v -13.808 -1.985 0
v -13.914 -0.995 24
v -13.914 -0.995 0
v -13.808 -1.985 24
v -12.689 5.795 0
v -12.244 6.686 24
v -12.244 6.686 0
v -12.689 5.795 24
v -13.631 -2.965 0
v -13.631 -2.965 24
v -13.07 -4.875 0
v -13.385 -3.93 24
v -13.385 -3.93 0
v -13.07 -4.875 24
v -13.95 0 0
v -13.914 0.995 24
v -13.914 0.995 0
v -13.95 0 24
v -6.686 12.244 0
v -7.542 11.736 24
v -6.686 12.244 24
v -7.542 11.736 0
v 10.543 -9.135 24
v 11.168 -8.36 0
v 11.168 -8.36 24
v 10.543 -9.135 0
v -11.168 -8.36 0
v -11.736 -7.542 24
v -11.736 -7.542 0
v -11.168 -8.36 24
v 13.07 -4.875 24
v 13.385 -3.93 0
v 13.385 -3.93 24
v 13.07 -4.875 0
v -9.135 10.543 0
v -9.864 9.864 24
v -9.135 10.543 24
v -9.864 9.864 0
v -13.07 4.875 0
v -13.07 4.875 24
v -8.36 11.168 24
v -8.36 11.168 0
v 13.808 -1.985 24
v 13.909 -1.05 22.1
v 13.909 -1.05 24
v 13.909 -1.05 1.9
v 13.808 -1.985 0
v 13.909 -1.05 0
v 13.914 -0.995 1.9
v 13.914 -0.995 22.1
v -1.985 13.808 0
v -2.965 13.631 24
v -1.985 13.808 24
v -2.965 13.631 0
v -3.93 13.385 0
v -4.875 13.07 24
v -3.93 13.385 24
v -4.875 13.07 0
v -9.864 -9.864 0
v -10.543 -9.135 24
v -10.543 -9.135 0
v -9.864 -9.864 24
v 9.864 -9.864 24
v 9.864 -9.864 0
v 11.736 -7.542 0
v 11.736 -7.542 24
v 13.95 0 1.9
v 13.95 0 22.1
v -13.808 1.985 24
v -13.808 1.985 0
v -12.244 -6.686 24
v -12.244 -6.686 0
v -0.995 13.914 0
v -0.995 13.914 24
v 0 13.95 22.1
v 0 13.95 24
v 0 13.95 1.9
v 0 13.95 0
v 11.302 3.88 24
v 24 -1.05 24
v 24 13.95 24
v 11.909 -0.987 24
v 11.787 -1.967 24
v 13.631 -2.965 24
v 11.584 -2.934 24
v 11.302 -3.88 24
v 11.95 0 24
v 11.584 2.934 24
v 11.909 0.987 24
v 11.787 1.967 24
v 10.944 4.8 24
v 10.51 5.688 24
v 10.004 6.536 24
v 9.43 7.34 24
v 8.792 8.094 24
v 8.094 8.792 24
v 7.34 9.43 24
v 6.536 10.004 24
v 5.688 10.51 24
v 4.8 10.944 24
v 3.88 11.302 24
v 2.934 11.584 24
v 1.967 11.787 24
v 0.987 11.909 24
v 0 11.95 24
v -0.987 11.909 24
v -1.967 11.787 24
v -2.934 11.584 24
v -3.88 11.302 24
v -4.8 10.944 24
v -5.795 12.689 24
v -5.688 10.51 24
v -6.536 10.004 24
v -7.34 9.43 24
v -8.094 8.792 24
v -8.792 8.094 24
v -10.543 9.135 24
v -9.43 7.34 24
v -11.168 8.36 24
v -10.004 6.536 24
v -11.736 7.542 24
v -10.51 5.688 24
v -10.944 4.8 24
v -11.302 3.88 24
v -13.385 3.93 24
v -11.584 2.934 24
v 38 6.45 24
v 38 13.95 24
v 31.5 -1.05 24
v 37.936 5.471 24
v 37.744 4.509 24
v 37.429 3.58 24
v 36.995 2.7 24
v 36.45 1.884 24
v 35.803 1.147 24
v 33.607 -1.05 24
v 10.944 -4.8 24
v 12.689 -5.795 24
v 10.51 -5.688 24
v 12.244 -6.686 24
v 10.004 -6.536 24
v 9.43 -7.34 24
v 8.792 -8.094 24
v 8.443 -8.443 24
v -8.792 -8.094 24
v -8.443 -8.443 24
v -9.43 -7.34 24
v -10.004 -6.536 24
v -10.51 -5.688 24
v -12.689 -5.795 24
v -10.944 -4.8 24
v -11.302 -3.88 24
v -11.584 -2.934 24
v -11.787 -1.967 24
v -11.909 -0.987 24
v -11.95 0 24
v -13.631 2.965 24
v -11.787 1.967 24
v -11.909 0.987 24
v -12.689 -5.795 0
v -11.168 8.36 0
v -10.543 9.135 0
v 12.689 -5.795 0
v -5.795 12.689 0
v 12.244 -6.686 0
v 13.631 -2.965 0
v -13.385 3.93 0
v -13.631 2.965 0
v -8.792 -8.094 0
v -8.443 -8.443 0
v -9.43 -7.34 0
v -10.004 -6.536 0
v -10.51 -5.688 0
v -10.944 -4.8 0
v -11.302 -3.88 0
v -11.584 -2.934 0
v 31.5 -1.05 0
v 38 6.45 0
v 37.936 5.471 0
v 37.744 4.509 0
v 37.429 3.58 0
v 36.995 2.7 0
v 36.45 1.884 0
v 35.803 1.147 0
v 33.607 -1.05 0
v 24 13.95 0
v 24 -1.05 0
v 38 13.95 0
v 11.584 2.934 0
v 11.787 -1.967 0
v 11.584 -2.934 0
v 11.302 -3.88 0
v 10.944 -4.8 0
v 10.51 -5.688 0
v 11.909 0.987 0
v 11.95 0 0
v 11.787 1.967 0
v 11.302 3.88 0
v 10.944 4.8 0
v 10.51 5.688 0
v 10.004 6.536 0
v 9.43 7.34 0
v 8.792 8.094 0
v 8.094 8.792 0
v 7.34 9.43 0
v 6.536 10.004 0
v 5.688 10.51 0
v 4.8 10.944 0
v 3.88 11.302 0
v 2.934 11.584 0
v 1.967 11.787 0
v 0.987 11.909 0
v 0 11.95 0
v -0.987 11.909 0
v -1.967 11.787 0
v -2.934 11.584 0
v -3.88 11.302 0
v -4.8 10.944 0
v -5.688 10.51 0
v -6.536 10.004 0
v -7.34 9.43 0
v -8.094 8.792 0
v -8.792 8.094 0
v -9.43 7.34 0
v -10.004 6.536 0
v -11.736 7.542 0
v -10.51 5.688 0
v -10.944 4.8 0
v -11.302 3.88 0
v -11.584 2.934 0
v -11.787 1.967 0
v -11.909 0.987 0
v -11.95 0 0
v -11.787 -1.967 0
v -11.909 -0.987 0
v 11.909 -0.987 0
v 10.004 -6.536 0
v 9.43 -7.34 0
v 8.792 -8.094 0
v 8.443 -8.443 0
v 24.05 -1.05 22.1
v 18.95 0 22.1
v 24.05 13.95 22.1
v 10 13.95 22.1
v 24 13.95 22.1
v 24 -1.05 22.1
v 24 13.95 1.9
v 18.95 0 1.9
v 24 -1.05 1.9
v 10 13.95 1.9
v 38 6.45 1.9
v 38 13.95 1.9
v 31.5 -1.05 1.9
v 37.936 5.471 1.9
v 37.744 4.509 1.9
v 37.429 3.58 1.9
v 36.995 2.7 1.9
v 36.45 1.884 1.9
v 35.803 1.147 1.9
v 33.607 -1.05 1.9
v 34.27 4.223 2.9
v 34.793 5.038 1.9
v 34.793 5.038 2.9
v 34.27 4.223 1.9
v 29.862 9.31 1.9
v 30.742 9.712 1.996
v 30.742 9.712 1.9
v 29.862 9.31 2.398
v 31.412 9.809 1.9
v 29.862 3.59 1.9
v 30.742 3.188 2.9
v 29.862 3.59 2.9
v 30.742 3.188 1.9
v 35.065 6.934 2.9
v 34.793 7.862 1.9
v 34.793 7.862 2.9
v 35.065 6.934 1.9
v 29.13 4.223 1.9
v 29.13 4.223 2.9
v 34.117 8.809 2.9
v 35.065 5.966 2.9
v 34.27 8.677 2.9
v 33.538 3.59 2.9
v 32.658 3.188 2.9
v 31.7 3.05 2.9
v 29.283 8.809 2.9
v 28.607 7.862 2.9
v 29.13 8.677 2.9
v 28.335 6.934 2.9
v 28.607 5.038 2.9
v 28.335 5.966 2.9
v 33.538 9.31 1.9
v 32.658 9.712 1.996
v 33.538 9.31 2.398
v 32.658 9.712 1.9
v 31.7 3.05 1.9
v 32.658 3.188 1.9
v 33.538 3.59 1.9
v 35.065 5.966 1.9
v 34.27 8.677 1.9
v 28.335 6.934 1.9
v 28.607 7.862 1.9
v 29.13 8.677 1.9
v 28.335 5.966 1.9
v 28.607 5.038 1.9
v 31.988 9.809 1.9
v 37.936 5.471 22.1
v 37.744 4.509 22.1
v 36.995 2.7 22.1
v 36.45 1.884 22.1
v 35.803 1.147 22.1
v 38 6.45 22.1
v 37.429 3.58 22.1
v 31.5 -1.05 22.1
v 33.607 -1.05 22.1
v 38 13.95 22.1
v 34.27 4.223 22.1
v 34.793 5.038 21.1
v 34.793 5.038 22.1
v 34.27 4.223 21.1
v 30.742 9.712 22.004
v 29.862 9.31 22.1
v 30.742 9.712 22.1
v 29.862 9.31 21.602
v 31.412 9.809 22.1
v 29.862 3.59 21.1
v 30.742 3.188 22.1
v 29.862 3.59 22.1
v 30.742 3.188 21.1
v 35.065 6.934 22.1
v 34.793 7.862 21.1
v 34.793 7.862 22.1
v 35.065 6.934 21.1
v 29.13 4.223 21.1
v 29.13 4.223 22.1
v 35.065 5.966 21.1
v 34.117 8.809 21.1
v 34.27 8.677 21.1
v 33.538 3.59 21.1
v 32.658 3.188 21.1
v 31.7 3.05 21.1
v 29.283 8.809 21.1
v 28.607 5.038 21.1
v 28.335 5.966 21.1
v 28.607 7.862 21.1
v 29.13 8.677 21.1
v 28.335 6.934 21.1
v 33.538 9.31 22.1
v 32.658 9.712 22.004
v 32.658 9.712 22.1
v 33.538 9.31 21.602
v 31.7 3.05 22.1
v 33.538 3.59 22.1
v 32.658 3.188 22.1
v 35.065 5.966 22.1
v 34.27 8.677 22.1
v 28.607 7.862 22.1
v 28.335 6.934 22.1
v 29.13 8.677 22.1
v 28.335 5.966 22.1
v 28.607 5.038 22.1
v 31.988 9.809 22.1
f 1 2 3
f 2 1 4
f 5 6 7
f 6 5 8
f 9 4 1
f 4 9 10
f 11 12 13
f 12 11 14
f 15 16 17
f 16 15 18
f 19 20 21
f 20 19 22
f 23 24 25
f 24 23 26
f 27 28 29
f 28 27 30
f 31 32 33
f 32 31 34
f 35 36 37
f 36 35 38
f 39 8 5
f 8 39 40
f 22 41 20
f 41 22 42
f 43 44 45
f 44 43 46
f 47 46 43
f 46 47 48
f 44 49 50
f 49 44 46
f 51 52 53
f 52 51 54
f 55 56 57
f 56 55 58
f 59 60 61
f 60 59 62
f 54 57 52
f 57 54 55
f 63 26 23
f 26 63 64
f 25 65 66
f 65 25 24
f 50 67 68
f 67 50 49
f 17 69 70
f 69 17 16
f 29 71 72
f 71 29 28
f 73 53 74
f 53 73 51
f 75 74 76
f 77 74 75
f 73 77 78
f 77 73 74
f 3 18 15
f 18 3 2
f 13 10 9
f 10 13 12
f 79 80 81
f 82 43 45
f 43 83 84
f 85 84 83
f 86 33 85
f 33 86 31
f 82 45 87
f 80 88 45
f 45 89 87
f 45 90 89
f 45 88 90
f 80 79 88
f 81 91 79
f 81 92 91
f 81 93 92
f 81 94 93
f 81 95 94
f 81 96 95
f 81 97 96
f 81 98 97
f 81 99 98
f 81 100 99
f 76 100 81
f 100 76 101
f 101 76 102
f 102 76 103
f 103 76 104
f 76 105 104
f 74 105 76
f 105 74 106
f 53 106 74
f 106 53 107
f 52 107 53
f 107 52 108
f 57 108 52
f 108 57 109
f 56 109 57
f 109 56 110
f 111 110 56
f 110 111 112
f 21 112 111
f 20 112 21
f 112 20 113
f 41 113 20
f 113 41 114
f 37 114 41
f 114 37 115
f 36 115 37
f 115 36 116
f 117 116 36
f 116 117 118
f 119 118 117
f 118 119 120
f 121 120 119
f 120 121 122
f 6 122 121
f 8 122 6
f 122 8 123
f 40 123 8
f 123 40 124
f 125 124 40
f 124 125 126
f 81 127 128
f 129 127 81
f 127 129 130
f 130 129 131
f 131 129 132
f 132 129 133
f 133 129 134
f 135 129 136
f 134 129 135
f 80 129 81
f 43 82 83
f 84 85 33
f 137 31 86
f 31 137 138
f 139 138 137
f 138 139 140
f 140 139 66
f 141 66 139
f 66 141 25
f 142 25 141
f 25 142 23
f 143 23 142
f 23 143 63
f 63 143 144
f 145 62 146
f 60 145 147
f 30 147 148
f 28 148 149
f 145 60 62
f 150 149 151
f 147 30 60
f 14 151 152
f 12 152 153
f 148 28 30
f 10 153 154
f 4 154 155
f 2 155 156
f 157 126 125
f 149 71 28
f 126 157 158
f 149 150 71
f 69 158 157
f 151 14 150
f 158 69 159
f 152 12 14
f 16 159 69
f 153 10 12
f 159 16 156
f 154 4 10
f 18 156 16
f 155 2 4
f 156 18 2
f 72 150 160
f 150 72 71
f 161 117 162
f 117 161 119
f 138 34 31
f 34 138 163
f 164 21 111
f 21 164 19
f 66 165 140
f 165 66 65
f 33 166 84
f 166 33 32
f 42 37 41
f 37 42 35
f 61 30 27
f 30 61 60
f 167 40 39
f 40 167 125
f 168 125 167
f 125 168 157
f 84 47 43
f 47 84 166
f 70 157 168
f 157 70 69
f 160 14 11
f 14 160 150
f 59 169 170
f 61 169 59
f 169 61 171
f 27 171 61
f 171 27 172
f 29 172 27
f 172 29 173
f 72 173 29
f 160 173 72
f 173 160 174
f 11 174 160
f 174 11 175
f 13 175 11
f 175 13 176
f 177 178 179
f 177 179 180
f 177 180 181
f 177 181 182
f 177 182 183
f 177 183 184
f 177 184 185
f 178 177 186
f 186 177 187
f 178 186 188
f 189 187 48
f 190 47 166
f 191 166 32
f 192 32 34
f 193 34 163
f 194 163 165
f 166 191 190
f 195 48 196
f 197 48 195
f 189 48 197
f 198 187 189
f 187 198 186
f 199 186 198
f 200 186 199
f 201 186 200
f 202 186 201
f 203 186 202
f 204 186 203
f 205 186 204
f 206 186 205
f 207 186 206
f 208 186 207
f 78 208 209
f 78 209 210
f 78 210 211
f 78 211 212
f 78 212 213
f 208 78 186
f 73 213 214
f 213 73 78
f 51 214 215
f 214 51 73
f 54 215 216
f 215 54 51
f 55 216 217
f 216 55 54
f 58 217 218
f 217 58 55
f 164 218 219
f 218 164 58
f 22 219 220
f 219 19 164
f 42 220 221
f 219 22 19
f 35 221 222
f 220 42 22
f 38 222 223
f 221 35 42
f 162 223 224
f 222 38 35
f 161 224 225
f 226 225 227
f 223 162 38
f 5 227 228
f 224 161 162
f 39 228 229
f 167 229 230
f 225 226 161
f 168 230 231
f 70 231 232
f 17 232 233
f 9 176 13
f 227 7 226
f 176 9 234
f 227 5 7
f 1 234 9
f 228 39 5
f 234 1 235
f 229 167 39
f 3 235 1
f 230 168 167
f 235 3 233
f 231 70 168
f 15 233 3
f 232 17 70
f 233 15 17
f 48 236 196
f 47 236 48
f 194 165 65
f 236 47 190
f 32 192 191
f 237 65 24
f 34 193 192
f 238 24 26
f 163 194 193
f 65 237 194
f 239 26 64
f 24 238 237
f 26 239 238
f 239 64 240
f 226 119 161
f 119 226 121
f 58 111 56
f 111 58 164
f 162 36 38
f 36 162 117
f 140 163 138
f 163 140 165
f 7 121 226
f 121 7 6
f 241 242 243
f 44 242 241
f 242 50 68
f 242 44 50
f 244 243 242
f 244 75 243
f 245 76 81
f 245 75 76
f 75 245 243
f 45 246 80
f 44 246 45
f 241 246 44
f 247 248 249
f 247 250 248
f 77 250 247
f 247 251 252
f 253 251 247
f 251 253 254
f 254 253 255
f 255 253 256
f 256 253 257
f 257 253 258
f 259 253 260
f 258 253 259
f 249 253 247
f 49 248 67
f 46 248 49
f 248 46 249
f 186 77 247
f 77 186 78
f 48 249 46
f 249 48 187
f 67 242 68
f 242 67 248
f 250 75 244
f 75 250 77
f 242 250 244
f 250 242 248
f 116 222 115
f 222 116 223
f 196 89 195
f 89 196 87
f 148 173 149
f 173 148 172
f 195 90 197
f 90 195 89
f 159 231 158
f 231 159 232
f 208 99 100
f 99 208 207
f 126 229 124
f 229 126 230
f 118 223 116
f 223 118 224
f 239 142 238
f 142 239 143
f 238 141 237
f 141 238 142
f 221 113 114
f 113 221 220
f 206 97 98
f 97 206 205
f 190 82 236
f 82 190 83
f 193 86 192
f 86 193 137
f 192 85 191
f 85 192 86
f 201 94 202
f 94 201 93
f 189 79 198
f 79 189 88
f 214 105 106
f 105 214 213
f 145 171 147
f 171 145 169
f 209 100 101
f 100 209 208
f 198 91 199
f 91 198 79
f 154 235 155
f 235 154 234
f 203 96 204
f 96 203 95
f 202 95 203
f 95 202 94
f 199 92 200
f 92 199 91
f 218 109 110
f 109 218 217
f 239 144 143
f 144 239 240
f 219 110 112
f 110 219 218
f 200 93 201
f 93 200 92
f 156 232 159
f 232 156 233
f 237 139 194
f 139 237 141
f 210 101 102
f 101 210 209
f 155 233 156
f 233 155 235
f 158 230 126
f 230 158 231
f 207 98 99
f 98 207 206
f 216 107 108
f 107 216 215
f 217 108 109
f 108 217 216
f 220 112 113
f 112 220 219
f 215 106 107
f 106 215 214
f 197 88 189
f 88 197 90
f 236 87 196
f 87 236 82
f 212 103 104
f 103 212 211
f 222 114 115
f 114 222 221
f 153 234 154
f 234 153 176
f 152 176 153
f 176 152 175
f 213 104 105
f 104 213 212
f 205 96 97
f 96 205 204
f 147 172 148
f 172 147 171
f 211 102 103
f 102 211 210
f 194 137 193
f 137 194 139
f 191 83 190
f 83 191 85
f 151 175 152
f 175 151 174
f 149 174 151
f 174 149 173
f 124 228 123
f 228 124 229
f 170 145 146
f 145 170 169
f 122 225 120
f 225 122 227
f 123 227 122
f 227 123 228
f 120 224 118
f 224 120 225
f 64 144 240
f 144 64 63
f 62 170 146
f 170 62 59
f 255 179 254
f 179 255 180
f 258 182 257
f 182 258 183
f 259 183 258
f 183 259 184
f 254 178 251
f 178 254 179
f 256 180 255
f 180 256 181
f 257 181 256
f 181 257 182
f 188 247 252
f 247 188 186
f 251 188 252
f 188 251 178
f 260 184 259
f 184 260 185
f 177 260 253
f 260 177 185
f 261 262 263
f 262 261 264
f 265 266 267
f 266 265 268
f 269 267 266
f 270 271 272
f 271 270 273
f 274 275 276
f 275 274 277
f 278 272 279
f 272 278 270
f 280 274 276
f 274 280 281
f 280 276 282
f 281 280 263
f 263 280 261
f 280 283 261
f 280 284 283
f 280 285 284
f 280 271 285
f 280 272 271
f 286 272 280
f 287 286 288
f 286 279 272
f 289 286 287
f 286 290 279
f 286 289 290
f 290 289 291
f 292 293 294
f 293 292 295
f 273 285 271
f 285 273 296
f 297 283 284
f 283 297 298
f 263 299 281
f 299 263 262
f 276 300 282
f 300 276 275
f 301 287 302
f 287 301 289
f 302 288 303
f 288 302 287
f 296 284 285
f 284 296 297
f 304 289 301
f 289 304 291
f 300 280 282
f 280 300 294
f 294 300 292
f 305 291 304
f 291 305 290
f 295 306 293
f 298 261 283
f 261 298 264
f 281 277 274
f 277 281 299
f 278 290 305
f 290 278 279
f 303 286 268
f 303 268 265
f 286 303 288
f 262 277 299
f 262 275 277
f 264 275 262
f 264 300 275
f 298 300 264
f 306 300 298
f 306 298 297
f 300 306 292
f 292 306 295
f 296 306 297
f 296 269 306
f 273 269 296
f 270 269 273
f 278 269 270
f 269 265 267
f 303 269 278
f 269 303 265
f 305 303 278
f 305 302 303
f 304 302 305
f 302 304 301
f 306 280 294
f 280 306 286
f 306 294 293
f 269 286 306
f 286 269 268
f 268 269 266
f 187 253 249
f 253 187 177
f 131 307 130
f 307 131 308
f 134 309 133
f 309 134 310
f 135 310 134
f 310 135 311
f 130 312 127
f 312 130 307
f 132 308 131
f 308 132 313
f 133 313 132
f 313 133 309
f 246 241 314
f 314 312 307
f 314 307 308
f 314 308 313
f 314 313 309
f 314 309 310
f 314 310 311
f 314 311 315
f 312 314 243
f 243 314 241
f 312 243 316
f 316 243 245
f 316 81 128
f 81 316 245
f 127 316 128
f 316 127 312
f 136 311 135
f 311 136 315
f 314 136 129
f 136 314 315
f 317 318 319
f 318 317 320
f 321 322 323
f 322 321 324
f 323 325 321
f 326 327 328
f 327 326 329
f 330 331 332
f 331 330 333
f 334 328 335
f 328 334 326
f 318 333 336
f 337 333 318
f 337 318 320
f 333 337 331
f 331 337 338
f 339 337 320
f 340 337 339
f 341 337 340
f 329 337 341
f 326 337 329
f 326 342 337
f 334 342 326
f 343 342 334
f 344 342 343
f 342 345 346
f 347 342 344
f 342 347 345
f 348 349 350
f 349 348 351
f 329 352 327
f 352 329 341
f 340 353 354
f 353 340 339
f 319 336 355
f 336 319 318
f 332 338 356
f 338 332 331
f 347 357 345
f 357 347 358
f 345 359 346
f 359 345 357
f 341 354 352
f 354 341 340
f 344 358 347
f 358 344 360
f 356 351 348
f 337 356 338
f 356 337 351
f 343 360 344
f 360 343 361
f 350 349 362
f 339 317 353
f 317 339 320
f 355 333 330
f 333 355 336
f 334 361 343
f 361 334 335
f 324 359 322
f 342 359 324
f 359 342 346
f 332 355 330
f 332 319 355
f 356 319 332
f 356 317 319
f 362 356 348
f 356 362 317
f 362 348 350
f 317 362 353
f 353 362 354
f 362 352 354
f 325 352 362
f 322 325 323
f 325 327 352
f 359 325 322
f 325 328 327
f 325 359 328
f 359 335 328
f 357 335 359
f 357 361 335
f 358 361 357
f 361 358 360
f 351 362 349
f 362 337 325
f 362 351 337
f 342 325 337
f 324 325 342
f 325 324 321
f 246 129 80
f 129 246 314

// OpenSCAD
// file: link.scad
include<parameters.scad>;

module notch_profile(with_tolerance=false) {
    polygon([
        [clip_thickness,
         -1.25 - (with_tolerance ? tolerance/2 : 0)],
        [(with_tolerance ? -.1 : 0),
         -.75 - (with_tolerance ? tolerance/2 : 0)],
        [(with_tolerance ? -.1 : 0),
         .75 + (with_tolerance ? tolerance/2 : 0)],
        [clip_thickness,
         1.25 + (with_tolerance ? tolerance/2 : 0)]
    ]);
}

module link_back() {
    union()
    translate([0, 0, outer_height/2])
    for(n=[0, 1])
    mirror([n, 0, 0])
    translate([-outer_width/2, 0, 0])
    union() {
        translate([0, _trim, 0])
        union() {
            difference() {
                translate([0, -outer_height/2, 0])
                rotate([0, 90, 0])
                cylinder(d=outer_height, h=wall_thickness-tolerance/2);

                translate([-.1, -outer_height/2, -outer_height/2])
                cube([wall_thickness+.2, outer_height/2, outer_height]);
            }

            translate([0, -outer_height, -outer_height/2])
            cube([wall_thickness-tolerance/2, outer_height/2, outer_height/2]);

            radius = (outer_height/2);
            translate([0, -(radius*(1+cos(45))), radius*sin(45)])
            rotate([90, 0, 90])
            linear_extrude(height=wall_thickness-tolerance/2)
            polygon([
                [0, 0],
                [radius*(1-sin(45)), radius*(1-sin(45))],
                [radius*cos(45), radius*(1-sin(45))],
                [radius*cos(45), 0]
            ]);
        }

        translate([0, -outer_height/2, -outer_height/2])
        cube([wall_thickness-tolerance/2, outer_height/2, outer_height]);

        // key
        translate([0, -outer_height/2-tolerance, 0])
        rotate([0, 90, 0])
        translate([0, 0, wall_thickness-.1])
        difference() {
            cylinder(d=key_diameter-tolerance, h=key_depth+.1-tolerance);

            translate([key_diameter/2, -key_diameter/2-1, 0])
            rotate([0, 270-key_slope_bottom, 0])
            translate([0, 0,-.9])
            cube([10,10,1]);
        }
    }
}

module link_mid() {
    translate([0, -mid_depth, 0])
    difference() {
        union() {
            translate([0, 0, outer_height/2])
            for(n=[0, 1])
            mirror([n, 0, 0])
            translate([-outer_width/2, 0, -outer_height/2])
            cube([wall_thickness * 2, mid_depth, outer_height]);

            translate([-outer_width/2, 0, 0])
            cube([outer_width, mid_depth, wall_thickness]);
        }

        translate([-outer_width/2-.5, mid_depth/2, outer_height])
        rotate([0, 90, 0])
        linear_extrude(height=outer_width+1)
        notch_profile(true);
    }
}

module link_front() {
    union()
    translate([0, 0, outer_height/2])
    for(n=[0, 1])
    mirror([n, 0, 0])
    translate([-outer_width/2 + wall_thickness, 0, 0])
    difference() {
        union() {
            translate([0, -_trim, 0])
            difference() {
                translate([tolerance/2, outer_height/2, 0])
                rotate([0, 90, 0])
                cylinder(d=outer_height, h=wall_thickness-tolerance/2);

                translate([tolerance-.1, 0, -outer_height/2])
                cube([wall_thickness-tolerance+.2, outer_height/2, outer_height]);
            }

            translate([tolerance/2, 0, -outer_height/2])
            cube([wall_thickness-tolerance/2, outer_height/2-_trim, outer_height]);
        }

        // keyhole
        translate([0, outer_height/2-_trim, 0])
        rotate([0, 90, 0])
        translate([0, 0, -.1])
        cylinder(d=key_diameter+tolerance, h=key_depth+.1+tolerance);
    }
}

module clip() {
    union() {
        for(r=[0, 180])
        rotate([0, 0, r]) {
            translate([outer_width/2-wall_thickness*2.5, 0, clip_thickness])
            rotate([0, 90, 0])
            linear_extrude(height=wall_thickness+.25)
            notch_profile(false);

            translate([outer_width/2-wall_thickness*2-clip_curve_thickness, -1.5, 0])
            cube([clip_curve_thickness, 3, clip_thickness]);

            translate([-clip_curve_thickness/2, -clip_curve_thickness, 0])
            cube([clip_curve_thickness, clip_curve_thickness*2, clip_thickness]);

            cyl_radius=(outer_width-wall_thickness*4+clip_curve_thickness)/4;

            translate([cyl_radius-clip_curve_thickness/2, 1, 0])
            difference() {
                cylinder(r=cyl_radius, h=clip_thickness);

                translate([0, 0, -.1])
                cylinder(r=cyl_radius-clip_curve_thickness, h=clip_thickness+.2);

                translate([-outer_width/2, -outer_width/2, -.1])
                cube([outer_width, outer_width/2, clip_thickness + .2]);
            }
        }
    }
}

module full_link() {
    union() {
        translate([0, -mid_depth, 0])
        link_back();
        link_mid();
        link_front();
    }
}

//translate([0, -mid_depth/2, outer_height-clip_thickness])
//translate([outer_width, 0, 0])
clip();

//full_link();
// file: parameters.scad
tolerance = .2;

outer_width = 24;
outer_height = 15;

mid_depth = 6;

wall_thickness = 2;

key_diameter = 7;
key_depth = 1.1;
key_slope_bottom = 45;

clip_thickness = 2;
clip_curve_thickness = 1.75;

end_screw_hole_diameter = 3.5;

_trim = 1;

$fa = 3;
$fs = 1;
// main file
include<parameters.scad>
use<link.scad>

pipe_size = 23.5+tolerance*2;
sleeve_thickness = 2;
spacing = 10;

union() {
    difference() {
        union() {
            cylinder(d=pipe_size+sleeve_thickness*2, h=outer_width);

            translate([
                0,
                pipe_size/2+sleeve_thickness-outer_height,
                outer_width-(wall_thickness-tolerance/2)
            ])
            cube([
                pipe_size/2+sleeve_thickness+spacing+.1,
                outer_height,
                wall_thickness-tolerance/2
            ]);
            translate([
                0,
                pipe_size/2+sleeve_thickness-outer_height,
                0
            ])
            cube([
                pipe_size/2+sleeve_thickness+spacing+.1,
                outer_height,
                wall_thickness-tolerance/2
            ]);

            linear_extrude(height=outer_width)
            polygon([
                [0, pipe_size/2+sleeve_thickness],
                [10, pipe_size/2+sleeve_thickness],
                [pipe_size/2+sleeve_thickness+spacing/2, 0],
                [0, 0]
            ]);
        }

        translate([0, 0, -.1])
        cylinder(d=pipe_size, h=outer_width+.2);

        rotate([0, 0, -135])
        translate([0, 0, -.1])
        cube([pipe_size, pipe_size, outer_width+.2]);
    }


    translate([
        outer_width/2+sleeve_thickness+spacing,
        pipe_size/2+sleeve_thickness,
        outer_width/2
    ])
    rotate([90, -90, 0])
    link_back();
}
